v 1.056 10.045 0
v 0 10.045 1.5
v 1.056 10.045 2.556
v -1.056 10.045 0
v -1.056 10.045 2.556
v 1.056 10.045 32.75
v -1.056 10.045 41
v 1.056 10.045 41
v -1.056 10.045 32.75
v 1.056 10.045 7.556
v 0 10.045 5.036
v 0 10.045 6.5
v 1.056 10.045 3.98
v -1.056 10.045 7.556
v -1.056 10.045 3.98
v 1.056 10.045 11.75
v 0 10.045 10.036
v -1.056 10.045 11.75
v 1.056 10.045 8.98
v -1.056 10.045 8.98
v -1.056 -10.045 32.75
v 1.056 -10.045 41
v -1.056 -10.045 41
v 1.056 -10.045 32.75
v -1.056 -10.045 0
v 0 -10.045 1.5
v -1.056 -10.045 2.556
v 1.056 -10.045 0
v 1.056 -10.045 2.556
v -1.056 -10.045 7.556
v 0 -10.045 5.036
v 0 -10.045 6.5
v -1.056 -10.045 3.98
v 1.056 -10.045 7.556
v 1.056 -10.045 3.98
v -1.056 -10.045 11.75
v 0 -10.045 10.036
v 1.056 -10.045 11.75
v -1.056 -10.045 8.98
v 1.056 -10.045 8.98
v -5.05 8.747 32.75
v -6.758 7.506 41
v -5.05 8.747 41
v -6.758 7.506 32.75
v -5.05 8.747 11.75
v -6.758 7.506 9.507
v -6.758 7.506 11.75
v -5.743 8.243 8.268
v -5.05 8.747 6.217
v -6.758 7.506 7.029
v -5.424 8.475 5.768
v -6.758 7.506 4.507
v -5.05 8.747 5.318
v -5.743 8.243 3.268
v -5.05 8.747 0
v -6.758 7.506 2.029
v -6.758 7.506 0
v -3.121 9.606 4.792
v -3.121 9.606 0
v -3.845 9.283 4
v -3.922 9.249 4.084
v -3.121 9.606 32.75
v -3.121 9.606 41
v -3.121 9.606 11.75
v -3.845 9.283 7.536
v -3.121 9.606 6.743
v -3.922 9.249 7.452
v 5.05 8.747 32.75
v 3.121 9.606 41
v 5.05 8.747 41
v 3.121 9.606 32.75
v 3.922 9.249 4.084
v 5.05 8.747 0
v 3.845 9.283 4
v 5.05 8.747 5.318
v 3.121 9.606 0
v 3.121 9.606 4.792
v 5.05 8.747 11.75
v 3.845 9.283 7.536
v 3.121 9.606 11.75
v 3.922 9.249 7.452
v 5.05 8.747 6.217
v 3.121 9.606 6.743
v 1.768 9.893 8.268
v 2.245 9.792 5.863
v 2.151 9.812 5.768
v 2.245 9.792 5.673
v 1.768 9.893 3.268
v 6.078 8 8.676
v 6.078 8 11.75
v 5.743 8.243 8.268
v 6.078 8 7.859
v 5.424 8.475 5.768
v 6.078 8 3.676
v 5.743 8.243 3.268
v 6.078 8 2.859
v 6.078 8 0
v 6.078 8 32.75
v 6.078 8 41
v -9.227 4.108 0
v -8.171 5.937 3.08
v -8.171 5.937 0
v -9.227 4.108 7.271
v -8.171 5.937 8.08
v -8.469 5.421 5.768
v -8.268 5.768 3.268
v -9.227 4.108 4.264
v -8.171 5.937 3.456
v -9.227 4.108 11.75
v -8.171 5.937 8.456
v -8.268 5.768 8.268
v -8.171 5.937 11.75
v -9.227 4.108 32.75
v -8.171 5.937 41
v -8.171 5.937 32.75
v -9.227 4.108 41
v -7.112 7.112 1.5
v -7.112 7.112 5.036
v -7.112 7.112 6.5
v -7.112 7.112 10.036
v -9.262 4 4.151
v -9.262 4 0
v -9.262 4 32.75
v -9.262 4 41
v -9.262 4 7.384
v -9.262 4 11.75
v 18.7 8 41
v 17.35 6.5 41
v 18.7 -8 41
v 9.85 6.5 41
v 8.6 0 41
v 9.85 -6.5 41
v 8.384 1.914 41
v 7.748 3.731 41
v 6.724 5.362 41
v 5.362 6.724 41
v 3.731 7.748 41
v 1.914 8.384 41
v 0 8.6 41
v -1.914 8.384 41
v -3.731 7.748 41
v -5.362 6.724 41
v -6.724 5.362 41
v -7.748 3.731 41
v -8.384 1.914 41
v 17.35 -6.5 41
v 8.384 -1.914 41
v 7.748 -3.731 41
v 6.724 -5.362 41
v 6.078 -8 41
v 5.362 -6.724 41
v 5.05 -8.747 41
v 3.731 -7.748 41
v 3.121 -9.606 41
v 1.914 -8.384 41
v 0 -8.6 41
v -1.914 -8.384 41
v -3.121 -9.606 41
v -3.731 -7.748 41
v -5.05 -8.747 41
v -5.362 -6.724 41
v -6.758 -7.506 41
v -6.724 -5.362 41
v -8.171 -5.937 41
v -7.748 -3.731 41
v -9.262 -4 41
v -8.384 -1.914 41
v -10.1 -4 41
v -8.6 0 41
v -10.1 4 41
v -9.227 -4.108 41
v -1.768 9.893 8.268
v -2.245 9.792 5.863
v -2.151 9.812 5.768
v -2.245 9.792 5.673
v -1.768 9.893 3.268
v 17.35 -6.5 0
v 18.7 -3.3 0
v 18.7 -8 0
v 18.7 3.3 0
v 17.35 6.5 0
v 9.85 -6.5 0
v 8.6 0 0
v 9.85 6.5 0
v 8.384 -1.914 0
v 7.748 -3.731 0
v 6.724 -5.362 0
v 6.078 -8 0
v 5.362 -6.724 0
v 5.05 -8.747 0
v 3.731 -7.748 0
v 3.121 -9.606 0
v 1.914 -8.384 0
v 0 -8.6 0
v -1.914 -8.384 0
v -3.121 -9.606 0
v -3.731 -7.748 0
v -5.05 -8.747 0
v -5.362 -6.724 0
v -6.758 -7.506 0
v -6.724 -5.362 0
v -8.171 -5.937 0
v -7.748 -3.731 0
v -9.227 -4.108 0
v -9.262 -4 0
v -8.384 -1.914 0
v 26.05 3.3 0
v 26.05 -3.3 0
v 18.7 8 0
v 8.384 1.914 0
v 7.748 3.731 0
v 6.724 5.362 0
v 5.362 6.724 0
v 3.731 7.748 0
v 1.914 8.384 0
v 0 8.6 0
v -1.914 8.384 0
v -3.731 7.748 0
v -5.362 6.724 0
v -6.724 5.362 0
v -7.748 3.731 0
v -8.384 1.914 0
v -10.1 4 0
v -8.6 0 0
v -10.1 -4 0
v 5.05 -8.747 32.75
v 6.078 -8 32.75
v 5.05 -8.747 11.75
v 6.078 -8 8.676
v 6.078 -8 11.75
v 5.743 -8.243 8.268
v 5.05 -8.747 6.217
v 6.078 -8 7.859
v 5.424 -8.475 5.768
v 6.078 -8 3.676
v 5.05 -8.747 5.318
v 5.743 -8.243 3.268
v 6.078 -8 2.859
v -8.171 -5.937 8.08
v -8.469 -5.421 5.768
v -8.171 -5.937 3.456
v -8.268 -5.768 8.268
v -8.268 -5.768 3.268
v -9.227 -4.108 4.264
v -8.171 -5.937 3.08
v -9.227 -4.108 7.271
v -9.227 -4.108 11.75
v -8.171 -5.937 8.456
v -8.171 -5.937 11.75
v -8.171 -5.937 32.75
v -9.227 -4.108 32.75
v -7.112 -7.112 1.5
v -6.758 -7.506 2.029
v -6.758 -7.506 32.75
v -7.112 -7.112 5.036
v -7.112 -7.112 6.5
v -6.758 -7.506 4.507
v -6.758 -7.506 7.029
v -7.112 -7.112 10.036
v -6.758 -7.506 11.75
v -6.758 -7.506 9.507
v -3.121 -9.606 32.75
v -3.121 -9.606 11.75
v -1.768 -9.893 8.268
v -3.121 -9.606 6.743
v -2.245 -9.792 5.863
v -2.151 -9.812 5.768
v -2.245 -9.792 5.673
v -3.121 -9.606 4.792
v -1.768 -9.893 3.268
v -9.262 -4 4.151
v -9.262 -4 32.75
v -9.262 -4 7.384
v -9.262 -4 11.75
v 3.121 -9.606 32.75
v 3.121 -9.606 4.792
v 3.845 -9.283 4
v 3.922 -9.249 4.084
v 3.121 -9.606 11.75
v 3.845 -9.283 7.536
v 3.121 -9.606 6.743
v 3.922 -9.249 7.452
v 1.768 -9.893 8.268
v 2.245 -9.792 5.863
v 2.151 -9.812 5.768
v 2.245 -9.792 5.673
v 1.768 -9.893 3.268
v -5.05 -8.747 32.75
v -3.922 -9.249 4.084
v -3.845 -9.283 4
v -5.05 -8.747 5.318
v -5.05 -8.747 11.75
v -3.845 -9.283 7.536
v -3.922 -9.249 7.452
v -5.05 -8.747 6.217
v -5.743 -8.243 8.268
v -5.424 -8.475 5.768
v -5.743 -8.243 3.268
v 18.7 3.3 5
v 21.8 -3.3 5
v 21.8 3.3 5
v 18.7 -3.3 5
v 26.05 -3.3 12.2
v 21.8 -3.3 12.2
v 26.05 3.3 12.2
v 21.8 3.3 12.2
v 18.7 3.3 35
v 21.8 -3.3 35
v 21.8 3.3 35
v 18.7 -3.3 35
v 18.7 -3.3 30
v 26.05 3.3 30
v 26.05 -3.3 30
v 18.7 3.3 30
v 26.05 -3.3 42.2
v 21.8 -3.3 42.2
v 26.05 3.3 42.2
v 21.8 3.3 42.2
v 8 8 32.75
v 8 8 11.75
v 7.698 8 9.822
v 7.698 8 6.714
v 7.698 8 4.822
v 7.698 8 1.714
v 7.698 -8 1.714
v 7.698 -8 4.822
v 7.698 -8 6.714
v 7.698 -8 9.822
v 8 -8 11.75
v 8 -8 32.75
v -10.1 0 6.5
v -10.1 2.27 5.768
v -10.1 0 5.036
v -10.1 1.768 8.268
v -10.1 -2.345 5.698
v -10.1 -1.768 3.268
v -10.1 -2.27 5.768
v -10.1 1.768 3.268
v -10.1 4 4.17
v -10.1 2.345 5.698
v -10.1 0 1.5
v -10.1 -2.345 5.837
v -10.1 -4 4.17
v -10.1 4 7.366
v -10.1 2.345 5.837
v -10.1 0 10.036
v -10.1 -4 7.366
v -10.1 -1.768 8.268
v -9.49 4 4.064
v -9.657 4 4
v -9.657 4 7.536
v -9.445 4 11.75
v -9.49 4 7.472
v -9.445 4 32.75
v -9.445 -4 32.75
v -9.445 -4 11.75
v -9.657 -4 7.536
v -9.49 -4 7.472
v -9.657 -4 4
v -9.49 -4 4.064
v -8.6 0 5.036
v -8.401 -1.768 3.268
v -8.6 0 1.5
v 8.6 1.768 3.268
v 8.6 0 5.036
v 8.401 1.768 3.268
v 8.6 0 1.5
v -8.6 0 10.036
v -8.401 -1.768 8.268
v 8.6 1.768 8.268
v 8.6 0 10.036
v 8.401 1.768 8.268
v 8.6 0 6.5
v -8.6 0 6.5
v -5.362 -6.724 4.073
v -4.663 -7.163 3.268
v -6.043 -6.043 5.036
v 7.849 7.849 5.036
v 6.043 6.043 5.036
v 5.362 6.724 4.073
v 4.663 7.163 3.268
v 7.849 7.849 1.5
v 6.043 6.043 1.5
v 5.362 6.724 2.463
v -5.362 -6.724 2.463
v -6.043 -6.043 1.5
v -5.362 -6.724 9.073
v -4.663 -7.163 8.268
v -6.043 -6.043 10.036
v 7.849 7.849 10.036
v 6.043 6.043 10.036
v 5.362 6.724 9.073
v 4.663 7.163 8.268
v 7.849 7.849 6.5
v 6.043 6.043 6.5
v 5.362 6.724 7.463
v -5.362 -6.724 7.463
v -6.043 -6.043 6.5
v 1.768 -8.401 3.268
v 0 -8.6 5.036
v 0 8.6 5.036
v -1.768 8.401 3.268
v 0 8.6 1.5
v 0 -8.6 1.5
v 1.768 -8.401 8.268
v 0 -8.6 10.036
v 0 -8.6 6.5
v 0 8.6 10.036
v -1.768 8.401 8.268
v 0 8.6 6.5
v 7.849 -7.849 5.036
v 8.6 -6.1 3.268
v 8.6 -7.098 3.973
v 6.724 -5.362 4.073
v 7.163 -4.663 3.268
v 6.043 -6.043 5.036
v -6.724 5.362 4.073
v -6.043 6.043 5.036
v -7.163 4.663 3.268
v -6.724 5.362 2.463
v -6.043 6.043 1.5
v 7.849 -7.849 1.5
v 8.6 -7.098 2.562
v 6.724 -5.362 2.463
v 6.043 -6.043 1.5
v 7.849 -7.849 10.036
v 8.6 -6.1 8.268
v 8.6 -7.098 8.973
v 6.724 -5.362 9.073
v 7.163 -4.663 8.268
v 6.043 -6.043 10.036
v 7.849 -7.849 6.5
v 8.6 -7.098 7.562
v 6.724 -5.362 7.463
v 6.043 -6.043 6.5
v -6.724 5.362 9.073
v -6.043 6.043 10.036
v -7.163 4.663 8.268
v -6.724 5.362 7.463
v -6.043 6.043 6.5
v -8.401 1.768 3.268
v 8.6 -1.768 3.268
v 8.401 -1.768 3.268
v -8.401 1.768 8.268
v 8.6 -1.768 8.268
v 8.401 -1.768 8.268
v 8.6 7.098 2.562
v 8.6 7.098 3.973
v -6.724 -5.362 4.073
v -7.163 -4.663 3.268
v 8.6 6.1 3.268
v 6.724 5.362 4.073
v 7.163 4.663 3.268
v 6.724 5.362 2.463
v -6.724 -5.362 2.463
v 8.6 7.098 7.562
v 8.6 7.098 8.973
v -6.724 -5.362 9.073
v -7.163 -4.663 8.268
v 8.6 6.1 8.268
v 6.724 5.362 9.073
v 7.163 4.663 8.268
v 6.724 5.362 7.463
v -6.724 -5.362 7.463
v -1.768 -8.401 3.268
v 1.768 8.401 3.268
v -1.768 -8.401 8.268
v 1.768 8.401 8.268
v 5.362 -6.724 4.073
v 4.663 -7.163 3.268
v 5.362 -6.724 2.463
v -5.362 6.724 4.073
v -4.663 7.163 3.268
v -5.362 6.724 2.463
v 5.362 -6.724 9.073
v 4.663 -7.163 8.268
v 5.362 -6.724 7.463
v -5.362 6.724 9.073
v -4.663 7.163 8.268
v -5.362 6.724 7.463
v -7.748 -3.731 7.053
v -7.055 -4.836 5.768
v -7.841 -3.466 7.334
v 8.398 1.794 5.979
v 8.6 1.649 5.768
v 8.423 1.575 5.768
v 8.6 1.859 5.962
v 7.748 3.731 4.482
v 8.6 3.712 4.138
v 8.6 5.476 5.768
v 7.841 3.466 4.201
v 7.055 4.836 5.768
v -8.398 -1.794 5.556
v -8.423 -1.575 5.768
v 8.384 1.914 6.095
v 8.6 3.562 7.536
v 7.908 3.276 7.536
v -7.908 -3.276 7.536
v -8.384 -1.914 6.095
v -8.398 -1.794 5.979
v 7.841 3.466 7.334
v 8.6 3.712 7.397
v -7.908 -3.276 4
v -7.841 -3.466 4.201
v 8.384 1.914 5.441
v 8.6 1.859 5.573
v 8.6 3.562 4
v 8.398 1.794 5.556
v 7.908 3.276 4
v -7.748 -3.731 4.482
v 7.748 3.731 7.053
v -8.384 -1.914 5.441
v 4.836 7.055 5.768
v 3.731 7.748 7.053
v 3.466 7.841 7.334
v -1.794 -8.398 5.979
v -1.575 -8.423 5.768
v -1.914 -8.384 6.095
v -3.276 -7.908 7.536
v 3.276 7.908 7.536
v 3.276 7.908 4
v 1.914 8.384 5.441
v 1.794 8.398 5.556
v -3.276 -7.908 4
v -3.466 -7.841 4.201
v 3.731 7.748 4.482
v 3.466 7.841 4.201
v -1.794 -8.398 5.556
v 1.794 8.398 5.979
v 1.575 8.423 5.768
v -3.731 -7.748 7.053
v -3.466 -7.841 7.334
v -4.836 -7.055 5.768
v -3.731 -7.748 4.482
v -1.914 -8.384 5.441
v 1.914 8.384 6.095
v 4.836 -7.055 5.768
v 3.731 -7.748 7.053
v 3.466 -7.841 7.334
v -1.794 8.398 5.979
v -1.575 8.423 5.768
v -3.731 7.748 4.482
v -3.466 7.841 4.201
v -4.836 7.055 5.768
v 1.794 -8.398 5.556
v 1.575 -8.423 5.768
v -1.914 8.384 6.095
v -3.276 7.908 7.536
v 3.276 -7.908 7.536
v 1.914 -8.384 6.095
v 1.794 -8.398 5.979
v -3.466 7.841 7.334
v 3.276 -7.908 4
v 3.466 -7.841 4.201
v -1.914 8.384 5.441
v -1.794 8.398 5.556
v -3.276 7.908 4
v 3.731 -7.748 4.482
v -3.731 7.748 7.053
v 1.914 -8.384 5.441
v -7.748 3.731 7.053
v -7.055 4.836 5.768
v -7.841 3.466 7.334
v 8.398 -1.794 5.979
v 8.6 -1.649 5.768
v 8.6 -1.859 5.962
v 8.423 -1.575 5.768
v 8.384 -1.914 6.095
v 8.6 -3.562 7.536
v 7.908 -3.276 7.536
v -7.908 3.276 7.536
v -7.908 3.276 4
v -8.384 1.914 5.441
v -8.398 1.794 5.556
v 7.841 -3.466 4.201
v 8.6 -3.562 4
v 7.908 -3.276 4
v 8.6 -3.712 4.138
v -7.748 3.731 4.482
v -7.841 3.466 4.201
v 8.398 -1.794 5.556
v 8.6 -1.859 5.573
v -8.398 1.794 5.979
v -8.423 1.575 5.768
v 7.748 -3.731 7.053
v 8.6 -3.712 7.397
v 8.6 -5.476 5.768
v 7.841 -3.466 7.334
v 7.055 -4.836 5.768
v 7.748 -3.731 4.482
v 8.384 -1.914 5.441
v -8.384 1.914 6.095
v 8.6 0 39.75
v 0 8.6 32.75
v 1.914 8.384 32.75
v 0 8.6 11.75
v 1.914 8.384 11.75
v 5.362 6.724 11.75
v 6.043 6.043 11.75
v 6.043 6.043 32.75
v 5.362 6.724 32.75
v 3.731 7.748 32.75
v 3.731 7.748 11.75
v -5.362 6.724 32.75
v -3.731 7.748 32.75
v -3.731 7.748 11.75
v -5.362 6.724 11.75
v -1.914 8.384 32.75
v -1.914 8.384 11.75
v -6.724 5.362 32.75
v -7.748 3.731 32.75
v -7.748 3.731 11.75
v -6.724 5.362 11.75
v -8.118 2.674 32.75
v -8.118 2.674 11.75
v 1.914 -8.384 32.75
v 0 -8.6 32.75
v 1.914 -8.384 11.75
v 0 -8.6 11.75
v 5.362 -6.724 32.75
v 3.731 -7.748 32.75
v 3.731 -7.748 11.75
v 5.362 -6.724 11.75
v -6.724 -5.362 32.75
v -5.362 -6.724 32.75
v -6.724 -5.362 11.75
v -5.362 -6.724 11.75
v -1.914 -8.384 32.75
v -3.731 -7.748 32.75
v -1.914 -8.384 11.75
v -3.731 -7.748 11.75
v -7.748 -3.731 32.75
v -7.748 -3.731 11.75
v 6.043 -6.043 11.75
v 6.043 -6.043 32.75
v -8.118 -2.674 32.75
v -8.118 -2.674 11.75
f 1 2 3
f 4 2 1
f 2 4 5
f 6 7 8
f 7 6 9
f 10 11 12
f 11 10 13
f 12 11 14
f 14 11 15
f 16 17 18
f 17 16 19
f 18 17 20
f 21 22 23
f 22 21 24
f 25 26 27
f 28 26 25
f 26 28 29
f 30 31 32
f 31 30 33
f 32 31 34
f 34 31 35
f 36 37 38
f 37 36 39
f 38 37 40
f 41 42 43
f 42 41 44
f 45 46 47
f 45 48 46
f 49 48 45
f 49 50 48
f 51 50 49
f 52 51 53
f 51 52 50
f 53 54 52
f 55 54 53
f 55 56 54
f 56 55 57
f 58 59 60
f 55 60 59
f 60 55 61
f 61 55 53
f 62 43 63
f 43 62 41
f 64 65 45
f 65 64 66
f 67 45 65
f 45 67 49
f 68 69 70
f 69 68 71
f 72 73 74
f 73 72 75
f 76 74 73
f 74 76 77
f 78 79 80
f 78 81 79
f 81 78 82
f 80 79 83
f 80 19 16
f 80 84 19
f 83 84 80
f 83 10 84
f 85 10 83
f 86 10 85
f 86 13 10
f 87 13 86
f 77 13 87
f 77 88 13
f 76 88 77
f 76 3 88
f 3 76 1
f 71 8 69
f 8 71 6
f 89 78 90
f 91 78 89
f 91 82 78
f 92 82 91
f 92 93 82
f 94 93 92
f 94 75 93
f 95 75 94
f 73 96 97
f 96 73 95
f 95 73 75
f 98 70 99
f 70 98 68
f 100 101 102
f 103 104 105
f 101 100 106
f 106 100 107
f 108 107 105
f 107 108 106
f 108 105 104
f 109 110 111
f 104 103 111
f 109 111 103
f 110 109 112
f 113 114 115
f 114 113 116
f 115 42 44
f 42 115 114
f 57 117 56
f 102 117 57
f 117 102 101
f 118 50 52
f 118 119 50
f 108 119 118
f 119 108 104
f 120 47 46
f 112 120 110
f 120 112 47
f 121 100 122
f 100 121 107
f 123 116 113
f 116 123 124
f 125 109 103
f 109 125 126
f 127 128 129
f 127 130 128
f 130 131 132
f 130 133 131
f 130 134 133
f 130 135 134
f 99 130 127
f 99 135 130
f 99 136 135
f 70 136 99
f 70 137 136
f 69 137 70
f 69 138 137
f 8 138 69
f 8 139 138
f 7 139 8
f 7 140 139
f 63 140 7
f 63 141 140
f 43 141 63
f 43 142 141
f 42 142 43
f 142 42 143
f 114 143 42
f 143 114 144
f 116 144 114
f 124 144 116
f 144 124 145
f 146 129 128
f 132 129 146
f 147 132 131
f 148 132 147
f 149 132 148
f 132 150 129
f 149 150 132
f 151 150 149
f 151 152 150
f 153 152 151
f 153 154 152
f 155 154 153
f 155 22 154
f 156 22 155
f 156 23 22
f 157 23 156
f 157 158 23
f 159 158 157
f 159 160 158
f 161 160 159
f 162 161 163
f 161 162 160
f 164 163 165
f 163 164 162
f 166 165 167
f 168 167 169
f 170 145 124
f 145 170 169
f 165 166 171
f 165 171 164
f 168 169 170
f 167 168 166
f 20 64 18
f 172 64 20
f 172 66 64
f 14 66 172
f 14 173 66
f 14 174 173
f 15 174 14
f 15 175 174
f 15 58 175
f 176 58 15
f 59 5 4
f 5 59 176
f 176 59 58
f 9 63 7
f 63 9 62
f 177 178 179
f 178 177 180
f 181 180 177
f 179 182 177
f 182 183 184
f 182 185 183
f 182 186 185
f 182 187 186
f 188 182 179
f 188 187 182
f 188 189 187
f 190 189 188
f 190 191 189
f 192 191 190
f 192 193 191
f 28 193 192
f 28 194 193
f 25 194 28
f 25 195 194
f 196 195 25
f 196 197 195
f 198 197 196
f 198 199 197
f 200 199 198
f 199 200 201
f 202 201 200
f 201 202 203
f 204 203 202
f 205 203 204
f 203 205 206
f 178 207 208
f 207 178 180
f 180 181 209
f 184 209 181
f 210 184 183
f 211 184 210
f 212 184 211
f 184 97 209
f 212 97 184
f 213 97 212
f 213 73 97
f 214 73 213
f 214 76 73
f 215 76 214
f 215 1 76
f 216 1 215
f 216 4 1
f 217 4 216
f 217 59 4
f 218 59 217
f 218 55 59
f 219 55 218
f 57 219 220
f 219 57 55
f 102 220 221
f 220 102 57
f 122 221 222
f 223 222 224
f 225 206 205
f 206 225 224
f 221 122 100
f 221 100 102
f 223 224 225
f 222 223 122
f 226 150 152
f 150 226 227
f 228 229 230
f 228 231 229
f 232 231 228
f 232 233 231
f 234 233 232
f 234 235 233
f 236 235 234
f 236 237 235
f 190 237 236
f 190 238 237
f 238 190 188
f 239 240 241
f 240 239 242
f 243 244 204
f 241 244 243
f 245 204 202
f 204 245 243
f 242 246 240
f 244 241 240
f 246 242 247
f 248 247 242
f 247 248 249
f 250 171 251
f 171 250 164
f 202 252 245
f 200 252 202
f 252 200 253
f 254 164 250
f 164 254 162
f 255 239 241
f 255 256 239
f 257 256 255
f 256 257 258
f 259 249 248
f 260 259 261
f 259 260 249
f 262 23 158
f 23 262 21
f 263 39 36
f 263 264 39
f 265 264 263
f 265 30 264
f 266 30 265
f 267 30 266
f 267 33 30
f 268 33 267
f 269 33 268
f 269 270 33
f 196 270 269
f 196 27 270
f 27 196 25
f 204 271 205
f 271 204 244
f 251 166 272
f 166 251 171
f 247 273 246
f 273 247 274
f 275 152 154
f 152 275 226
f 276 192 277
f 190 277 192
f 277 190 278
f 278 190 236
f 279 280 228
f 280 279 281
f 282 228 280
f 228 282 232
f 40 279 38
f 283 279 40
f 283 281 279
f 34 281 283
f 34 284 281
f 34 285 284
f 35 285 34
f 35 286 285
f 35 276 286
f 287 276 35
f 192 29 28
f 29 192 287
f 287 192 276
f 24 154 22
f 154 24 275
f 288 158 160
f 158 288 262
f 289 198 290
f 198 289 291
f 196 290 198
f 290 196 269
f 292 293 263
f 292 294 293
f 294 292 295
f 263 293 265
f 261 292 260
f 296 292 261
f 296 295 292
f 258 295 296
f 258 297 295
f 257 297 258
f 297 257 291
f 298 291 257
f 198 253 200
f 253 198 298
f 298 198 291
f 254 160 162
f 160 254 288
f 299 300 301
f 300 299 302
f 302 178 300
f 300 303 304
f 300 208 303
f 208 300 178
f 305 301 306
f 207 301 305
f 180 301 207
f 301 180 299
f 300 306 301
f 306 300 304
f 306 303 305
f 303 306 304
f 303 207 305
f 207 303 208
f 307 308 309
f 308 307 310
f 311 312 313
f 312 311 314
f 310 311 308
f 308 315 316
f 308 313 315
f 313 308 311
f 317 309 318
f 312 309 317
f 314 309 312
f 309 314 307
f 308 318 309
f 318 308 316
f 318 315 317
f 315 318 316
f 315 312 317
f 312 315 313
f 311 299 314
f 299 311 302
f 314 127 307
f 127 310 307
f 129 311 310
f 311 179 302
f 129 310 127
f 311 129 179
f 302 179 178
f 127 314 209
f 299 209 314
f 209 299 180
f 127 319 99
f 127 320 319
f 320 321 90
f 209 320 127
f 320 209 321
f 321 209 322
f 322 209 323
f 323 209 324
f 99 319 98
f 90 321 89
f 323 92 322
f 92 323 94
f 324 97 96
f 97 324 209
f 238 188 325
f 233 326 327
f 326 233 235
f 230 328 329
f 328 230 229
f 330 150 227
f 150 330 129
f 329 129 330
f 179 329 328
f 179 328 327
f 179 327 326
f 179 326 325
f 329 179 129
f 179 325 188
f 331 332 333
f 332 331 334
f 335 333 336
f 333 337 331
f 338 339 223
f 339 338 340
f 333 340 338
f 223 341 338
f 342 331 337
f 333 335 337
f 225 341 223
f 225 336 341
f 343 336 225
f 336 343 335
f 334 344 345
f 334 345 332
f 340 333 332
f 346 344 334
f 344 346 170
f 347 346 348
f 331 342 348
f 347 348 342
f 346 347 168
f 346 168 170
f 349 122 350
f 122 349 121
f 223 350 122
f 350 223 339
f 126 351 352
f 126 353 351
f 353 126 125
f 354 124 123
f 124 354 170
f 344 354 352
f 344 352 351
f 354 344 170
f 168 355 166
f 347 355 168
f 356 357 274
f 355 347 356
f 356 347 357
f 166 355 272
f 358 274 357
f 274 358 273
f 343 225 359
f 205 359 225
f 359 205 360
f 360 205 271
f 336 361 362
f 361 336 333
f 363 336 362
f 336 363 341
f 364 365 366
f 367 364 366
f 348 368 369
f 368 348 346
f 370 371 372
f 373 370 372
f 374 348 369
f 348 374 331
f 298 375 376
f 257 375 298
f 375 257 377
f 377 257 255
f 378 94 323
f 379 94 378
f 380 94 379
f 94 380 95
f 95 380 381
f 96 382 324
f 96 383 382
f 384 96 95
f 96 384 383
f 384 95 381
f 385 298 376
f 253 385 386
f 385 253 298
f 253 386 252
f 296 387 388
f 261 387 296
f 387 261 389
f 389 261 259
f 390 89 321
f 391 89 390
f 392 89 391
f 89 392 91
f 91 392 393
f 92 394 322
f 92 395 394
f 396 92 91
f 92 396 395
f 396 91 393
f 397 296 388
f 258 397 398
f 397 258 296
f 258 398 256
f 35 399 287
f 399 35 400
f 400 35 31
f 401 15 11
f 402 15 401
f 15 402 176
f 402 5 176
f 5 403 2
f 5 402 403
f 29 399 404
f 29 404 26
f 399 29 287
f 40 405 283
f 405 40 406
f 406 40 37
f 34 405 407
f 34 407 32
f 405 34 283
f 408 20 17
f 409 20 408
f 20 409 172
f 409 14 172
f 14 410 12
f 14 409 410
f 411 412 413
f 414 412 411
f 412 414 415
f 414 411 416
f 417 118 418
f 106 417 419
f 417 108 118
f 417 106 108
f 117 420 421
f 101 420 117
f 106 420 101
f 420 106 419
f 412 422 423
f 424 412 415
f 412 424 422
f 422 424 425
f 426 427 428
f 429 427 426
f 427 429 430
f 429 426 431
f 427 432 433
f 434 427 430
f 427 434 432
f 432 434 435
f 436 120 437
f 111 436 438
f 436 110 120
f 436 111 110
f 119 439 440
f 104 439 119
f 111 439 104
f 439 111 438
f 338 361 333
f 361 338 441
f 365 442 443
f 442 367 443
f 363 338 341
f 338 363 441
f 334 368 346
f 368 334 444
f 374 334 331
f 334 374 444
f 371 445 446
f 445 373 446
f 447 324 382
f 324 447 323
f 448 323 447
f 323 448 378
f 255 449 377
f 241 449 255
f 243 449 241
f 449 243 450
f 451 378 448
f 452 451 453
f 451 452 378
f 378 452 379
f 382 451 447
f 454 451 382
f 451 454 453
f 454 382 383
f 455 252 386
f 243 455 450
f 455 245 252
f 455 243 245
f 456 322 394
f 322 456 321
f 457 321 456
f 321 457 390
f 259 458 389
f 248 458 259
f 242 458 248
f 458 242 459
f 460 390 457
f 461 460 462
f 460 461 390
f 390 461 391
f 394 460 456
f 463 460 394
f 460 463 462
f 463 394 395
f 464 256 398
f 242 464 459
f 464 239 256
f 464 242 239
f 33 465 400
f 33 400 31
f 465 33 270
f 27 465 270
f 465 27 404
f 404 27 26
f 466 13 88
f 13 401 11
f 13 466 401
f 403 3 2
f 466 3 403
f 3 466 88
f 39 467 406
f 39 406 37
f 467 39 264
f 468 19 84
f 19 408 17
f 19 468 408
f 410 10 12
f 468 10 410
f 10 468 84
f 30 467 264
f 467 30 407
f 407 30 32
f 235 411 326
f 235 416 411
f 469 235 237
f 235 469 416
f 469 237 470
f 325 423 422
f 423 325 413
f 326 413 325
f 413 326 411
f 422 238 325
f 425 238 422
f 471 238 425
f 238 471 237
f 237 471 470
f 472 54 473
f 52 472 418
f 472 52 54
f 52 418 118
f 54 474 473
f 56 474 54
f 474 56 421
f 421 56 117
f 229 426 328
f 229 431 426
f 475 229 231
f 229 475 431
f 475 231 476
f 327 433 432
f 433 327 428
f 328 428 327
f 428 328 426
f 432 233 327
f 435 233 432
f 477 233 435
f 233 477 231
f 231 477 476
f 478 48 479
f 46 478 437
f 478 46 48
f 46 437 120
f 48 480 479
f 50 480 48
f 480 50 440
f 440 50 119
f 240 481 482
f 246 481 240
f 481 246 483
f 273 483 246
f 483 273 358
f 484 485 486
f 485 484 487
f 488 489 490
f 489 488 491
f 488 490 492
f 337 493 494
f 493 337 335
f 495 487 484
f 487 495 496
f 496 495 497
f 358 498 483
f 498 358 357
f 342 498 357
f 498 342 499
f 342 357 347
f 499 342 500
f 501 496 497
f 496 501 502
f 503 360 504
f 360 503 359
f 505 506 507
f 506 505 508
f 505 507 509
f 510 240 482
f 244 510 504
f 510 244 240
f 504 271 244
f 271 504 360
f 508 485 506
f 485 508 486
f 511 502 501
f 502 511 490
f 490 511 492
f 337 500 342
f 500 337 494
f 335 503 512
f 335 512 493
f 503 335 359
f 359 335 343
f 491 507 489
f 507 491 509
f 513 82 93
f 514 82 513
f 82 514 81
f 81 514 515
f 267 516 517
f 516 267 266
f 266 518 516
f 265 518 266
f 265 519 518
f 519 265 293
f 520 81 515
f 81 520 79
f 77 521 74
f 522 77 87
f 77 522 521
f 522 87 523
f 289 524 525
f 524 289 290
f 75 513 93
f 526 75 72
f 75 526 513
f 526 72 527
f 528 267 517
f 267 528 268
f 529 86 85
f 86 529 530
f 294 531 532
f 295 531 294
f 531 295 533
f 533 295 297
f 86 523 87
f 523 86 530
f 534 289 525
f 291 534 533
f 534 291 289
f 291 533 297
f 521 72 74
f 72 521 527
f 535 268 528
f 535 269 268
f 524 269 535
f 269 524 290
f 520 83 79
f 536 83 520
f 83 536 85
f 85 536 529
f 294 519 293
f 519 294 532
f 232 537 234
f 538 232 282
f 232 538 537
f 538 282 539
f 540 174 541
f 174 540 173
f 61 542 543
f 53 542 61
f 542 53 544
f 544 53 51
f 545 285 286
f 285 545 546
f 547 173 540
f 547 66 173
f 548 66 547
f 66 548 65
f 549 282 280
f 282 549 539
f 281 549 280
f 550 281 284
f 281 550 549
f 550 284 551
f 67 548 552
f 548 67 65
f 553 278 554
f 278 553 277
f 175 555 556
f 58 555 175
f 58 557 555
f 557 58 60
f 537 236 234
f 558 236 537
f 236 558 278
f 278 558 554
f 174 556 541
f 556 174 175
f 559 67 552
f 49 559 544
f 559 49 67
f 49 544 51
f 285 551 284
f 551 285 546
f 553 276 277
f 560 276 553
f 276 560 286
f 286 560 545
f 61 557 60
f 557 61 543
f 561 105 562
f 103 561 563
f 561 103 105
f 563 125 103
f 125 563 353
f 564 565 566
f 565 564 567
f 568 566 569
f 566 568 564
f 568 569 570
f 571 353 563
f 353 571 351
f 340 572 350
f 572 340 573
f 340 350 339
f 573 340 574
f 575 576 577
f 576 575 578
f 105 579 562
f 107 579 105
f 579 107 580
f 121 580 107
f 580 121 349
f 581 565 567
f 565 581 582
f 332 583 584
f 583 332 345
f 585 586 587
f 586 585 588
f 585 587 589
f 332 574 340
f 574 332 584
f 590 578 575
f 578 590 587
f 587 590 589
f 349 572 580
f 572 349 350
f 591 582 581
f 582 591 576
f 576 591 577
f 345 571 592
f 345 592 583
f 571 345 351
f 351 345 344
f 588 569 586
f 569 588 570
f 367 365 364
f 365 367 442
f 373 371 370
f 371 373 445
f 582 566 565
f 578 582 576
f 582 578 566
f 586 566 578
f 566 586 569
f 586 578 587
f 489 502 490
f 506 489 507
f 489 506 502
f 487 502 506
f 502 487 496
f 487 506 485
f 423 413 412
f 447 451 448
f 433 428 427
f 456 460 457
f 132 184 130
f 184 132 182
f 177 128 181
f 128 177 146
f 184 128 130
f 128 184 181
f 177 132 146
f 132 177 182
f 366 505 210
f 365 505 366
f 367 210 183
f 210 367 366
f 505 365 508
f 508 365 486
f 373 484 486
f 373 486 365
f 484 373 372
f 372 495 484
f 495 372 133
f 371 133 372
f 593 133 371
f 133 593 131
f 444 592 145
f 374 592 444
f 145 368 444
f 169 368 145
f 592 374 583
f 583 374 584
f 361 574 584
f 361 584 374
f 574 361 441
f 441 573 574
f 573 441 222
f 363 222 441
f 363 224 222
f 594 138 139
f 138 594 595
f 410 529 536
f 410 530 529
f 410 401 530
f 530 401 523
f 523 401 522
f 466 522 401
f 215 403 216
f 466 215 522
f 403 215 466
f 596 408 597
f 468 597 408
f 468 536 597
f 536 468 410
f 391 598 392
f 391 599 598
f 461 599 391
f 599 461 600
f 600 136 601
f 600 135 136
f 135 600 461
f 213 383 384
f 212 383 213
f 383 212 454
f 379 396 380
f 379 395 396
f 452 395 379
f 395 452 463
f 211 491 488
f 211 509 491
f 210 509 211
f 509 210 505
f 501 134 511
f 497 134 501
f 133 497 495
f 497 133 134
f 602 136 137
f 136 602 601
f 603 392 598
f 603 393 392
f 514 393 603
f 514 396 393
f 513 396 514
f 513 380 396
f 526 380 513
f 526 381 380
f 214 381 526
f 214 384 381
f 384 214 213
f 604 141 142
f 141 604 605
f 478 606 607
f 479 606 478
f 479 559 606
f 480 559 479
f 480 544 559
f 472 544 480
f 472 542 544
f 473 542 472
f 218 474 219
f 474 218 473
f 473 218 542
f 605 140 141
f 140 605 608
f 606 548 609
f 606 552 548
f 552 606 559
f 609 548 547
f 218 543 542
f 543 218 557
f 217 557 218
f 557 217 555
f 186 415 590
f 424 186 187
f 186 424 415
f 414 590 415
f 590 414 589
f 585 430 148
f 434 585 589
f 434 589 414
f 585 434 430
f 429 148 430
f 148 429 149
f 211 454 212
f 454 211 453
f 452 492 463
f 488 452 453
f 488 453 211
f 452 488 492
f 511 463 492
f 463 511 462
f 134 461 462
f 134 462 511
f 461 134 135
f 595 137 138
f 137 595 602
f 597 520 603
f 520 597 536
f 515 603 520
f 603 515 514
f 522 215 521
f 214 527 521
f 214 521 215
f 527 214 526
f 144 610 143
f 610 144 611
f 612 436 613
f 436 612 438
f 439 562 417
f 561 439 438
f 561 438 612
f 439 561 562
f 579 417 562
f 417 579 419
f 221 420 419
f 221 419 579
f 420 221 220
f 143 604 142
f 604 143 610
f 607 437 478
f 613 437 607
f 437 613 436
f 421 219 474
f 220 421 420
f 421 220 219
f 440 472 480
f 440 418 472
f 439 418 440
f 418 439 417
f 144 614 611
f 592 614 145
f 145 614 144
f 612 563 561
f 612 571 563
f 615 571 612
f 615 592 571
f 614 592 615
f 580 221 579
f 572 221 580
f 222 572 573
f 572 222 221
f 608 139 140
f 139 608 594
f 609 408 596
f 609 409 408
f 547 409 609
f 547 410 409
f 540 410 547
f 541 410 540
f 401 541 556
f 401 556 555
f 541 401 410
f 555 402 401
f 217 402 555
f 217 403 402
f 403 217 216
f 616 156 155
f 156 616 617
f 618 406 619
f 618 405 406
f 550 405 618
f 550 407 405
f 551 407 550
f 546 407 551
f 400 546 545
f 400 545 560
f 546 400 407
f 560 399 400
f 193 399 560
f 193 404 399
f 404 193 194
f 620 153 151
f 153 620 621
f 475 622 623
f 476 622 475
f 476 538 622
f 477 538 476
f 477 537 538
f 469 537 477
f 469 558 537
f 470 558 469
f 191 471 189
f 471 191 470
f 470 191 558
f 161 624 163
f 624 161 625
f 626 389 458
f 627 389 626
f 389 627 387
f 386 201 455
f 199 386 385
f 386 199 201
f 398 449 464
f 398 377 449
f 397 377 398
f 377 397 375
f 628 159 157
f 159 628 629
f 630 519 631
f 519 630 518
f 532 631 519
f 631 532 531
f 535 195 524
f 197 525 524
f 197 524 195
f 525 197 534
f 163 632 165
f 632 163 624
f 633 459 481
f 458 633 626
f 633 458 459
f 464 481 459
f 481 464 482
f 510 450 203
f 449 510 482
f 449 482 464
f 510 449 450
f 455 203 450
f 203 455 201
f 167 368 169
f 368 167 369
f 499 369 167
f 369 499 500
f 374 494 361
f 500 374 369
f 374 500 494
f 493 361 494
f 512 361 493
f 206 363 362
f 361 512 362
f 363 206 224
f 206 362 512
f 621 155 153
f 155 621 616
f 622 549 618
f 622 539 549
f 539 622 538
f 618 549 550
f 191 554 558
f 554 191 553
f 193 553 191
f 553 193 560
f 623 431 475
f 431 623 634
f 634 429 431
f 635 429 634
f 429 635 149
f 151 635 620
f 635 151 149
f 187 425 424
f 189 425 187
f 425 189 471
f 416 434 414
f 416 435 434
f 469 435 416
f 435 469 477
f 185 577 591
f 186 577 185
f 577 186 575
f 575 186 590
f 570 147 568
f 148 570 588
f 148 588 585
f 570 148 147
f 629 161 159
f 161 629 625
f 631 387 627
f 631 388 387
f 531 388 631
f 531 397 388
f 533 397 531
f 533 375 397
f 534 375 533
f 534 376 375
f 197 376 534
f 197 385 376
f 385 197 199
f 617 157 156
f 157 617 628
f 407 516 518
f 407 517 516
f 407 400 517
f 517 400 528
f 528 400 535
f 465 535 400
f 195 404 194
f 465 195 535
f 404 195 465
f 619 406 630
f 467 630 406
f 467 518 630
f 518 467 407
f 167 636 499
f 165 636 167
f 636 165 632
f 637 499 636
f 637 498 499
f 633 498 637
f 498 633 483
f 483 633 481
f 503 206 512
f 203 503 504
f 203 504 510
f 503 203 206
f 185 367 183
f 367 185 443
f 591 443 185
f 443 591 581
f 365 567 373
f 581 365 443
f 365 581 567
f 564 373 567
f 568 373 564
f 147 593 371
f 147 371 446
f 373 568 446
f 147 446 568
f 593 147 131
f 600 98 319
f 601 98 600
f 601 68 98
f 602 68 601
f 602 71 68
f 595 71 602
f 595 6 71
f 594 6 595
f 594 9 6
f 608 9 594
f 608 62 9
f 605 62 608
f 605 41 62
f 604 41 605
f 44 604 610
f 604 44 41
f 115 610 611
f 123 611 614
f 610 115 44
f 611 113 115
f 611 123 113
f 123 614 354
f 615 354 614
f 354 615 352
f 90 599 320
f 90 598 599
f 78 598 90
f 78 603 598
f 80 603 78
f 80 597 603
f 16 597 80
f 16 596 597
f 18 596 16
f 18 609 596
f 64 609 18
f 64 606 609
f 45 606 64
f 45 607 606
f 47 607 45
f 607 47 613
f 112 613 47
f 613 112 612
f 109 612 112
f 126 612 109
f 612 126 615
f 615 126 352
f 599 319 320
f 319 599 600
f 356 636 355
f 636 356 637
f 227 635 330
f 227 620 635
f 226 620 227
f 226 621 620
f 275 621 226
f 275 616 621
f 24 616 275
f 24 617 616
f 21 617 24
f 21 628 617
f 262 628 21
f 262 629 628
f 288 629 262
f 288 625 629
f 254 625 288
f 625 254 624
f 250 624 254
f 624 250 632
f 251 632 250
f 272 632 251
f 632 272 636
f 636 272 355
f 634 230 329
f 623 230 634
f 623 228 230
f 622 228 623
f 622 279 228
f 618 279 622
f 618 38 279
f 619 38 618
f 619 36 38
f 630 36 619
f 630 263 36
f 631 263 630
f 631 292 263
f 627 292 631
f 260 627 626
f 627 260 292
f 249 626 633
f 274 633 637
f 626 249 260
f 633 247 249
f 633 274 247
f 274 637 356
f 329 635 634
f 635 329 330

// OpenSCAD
//---------------------
// 10 mL Syringe Holder
//---------------------
// Nathan Vierling-Claassen
// 4/2016-1/2016
//---------------------
// ** 10 mL Syringe holder to fit with adjustable syringe bracket
// ** If adjusting dimensions, make sure dimensions are compatible with the 
// ** check that dimensions are compatible with adjustable_fluid_bracket.scad
// ** measurements in mm
//---------------------

// thickness of bracket wall (needs to be same as bracket)
th=2.5;

// thickness of wall around syringe (can be thinner)
th_w=1.5;

// height and width of opening of holes in bracket (needs to be same as bracket) 
o_w=8;
o_h=15;

// distance between opening holes in bracket (center to center)
// (needs to be same as bracket)
o_d=30;

// clearance distance to allow parts to fit together smoothly
cl=1.4;

// syringe diameter
s_d=17.2;

// distance of syringe wall from brace
d_sw=10;

difference(){
    union(){
        //outer cylinder for syringe, extended to support further down syringe
        cylinder(h=4.5*o_w+2*th, r=s_d/2+th_w,center=false);	
        // cube for bracket (1)
        translate([s_d/2,-o_w/2+cl/2,0])cube([d_sw+th+cl,o_w-cl,2*th]);
        // hook behind hole (1)
        translate([s_d/2+d_sw+th+cl/2,-o_w/2+cl/2,0])cube([1.5*th+.5,o_w-cl,o_h-2*cl]);
        // cube for bracket (2)
        translate([s_d/2,-o_w/2+cl/2,o_d])cube([d_sw+th+cl,o_w-cl,2*th]);
        // hook behind hole (2)
        translate([s_d/2+d_sw+th+cl/2,-o_w/2+cl/2,o_d])cube([1.5*th+.5,o_w-cl,o_h-2*cl]);
        // cube that supports back bracket
        translate([0,-o_w/2-th-th_w,0])cube([s_d+th_w,o_w+2*th+2*th_w,4.5*o_w+2*th]);
        // reinforce front brace
        translate([-s_d/2-th_w,-4,0])cube([2*th,8,4.5*o_w+2*th]);    
    }
    union(){
        // remove inner cylinder for syringe
        translate([0,0,-th/2])cylinder(h=3*th+4.5*o_w, r=s_d/2,center=false);

        // remove part of cylinder below full circle holder to serve as tray/brace deeper on syringe		
        rotate(45,[0,0,1])translate([-s_d/2+1.5*th+1,0,o_w+1.5*th])cube([s_d-0.5*th,s_d/2+2*th,2*o_w+2*th]);
        rotate(-45,[0,0,1])translate([-s_d/2+1.5*th+1,-s_d/2-2*th,o_w+1.5*th])cube([s_d-0.5*th,s_d/2+2*th,2*o_w+2*th]);

        // take away inside of cube that goes flat on bracket
        translate([s_d/2+th/2,-o_w/2-th,-1])cube([d_sw-th,o_w+2*th,4.5*o_w+2*th+2]);

        // remove lattice from upper part of brace (reduces print time, looks nice)
        translate([0,0,1.5]){
            for(i=[0:7]){
                rotate(i*45,[0,0,1]){
                    translate([-s_d/2-th,0,0])rotate(45,[1,0,0])cube([s_d+2*th,th,th]);
                    translate([-s_d/2-th,0,2*th])rotate(45,[1,0,0])cube([s_d+2*th,th,th]);
                }

                translate([0,0,th])rotate(i*45+45/2,[0,0,1]){
                    translate([-s_d/2-th,0,0])rotate(45,[1,0,0])cube([s_d+2*th,th,th]);
                }
            }
        }
    }
}
        
// cube to support against bracket            
difference(){
    // cube to hold holder flat on bracket
    translate([s_d/2,-o_w/2-th-th_w,0])cube([d_sw,o_w+2*th+2*th_w,4.5*o_w+1.5*th]);
    // take away inside of cube that goes flat on bracket
    translate([s_d/2+th/2,-o_w/2-th,-1])cube([d_sw-th,o_w+2*th,4.5*o_w+2*th+2]);
}
